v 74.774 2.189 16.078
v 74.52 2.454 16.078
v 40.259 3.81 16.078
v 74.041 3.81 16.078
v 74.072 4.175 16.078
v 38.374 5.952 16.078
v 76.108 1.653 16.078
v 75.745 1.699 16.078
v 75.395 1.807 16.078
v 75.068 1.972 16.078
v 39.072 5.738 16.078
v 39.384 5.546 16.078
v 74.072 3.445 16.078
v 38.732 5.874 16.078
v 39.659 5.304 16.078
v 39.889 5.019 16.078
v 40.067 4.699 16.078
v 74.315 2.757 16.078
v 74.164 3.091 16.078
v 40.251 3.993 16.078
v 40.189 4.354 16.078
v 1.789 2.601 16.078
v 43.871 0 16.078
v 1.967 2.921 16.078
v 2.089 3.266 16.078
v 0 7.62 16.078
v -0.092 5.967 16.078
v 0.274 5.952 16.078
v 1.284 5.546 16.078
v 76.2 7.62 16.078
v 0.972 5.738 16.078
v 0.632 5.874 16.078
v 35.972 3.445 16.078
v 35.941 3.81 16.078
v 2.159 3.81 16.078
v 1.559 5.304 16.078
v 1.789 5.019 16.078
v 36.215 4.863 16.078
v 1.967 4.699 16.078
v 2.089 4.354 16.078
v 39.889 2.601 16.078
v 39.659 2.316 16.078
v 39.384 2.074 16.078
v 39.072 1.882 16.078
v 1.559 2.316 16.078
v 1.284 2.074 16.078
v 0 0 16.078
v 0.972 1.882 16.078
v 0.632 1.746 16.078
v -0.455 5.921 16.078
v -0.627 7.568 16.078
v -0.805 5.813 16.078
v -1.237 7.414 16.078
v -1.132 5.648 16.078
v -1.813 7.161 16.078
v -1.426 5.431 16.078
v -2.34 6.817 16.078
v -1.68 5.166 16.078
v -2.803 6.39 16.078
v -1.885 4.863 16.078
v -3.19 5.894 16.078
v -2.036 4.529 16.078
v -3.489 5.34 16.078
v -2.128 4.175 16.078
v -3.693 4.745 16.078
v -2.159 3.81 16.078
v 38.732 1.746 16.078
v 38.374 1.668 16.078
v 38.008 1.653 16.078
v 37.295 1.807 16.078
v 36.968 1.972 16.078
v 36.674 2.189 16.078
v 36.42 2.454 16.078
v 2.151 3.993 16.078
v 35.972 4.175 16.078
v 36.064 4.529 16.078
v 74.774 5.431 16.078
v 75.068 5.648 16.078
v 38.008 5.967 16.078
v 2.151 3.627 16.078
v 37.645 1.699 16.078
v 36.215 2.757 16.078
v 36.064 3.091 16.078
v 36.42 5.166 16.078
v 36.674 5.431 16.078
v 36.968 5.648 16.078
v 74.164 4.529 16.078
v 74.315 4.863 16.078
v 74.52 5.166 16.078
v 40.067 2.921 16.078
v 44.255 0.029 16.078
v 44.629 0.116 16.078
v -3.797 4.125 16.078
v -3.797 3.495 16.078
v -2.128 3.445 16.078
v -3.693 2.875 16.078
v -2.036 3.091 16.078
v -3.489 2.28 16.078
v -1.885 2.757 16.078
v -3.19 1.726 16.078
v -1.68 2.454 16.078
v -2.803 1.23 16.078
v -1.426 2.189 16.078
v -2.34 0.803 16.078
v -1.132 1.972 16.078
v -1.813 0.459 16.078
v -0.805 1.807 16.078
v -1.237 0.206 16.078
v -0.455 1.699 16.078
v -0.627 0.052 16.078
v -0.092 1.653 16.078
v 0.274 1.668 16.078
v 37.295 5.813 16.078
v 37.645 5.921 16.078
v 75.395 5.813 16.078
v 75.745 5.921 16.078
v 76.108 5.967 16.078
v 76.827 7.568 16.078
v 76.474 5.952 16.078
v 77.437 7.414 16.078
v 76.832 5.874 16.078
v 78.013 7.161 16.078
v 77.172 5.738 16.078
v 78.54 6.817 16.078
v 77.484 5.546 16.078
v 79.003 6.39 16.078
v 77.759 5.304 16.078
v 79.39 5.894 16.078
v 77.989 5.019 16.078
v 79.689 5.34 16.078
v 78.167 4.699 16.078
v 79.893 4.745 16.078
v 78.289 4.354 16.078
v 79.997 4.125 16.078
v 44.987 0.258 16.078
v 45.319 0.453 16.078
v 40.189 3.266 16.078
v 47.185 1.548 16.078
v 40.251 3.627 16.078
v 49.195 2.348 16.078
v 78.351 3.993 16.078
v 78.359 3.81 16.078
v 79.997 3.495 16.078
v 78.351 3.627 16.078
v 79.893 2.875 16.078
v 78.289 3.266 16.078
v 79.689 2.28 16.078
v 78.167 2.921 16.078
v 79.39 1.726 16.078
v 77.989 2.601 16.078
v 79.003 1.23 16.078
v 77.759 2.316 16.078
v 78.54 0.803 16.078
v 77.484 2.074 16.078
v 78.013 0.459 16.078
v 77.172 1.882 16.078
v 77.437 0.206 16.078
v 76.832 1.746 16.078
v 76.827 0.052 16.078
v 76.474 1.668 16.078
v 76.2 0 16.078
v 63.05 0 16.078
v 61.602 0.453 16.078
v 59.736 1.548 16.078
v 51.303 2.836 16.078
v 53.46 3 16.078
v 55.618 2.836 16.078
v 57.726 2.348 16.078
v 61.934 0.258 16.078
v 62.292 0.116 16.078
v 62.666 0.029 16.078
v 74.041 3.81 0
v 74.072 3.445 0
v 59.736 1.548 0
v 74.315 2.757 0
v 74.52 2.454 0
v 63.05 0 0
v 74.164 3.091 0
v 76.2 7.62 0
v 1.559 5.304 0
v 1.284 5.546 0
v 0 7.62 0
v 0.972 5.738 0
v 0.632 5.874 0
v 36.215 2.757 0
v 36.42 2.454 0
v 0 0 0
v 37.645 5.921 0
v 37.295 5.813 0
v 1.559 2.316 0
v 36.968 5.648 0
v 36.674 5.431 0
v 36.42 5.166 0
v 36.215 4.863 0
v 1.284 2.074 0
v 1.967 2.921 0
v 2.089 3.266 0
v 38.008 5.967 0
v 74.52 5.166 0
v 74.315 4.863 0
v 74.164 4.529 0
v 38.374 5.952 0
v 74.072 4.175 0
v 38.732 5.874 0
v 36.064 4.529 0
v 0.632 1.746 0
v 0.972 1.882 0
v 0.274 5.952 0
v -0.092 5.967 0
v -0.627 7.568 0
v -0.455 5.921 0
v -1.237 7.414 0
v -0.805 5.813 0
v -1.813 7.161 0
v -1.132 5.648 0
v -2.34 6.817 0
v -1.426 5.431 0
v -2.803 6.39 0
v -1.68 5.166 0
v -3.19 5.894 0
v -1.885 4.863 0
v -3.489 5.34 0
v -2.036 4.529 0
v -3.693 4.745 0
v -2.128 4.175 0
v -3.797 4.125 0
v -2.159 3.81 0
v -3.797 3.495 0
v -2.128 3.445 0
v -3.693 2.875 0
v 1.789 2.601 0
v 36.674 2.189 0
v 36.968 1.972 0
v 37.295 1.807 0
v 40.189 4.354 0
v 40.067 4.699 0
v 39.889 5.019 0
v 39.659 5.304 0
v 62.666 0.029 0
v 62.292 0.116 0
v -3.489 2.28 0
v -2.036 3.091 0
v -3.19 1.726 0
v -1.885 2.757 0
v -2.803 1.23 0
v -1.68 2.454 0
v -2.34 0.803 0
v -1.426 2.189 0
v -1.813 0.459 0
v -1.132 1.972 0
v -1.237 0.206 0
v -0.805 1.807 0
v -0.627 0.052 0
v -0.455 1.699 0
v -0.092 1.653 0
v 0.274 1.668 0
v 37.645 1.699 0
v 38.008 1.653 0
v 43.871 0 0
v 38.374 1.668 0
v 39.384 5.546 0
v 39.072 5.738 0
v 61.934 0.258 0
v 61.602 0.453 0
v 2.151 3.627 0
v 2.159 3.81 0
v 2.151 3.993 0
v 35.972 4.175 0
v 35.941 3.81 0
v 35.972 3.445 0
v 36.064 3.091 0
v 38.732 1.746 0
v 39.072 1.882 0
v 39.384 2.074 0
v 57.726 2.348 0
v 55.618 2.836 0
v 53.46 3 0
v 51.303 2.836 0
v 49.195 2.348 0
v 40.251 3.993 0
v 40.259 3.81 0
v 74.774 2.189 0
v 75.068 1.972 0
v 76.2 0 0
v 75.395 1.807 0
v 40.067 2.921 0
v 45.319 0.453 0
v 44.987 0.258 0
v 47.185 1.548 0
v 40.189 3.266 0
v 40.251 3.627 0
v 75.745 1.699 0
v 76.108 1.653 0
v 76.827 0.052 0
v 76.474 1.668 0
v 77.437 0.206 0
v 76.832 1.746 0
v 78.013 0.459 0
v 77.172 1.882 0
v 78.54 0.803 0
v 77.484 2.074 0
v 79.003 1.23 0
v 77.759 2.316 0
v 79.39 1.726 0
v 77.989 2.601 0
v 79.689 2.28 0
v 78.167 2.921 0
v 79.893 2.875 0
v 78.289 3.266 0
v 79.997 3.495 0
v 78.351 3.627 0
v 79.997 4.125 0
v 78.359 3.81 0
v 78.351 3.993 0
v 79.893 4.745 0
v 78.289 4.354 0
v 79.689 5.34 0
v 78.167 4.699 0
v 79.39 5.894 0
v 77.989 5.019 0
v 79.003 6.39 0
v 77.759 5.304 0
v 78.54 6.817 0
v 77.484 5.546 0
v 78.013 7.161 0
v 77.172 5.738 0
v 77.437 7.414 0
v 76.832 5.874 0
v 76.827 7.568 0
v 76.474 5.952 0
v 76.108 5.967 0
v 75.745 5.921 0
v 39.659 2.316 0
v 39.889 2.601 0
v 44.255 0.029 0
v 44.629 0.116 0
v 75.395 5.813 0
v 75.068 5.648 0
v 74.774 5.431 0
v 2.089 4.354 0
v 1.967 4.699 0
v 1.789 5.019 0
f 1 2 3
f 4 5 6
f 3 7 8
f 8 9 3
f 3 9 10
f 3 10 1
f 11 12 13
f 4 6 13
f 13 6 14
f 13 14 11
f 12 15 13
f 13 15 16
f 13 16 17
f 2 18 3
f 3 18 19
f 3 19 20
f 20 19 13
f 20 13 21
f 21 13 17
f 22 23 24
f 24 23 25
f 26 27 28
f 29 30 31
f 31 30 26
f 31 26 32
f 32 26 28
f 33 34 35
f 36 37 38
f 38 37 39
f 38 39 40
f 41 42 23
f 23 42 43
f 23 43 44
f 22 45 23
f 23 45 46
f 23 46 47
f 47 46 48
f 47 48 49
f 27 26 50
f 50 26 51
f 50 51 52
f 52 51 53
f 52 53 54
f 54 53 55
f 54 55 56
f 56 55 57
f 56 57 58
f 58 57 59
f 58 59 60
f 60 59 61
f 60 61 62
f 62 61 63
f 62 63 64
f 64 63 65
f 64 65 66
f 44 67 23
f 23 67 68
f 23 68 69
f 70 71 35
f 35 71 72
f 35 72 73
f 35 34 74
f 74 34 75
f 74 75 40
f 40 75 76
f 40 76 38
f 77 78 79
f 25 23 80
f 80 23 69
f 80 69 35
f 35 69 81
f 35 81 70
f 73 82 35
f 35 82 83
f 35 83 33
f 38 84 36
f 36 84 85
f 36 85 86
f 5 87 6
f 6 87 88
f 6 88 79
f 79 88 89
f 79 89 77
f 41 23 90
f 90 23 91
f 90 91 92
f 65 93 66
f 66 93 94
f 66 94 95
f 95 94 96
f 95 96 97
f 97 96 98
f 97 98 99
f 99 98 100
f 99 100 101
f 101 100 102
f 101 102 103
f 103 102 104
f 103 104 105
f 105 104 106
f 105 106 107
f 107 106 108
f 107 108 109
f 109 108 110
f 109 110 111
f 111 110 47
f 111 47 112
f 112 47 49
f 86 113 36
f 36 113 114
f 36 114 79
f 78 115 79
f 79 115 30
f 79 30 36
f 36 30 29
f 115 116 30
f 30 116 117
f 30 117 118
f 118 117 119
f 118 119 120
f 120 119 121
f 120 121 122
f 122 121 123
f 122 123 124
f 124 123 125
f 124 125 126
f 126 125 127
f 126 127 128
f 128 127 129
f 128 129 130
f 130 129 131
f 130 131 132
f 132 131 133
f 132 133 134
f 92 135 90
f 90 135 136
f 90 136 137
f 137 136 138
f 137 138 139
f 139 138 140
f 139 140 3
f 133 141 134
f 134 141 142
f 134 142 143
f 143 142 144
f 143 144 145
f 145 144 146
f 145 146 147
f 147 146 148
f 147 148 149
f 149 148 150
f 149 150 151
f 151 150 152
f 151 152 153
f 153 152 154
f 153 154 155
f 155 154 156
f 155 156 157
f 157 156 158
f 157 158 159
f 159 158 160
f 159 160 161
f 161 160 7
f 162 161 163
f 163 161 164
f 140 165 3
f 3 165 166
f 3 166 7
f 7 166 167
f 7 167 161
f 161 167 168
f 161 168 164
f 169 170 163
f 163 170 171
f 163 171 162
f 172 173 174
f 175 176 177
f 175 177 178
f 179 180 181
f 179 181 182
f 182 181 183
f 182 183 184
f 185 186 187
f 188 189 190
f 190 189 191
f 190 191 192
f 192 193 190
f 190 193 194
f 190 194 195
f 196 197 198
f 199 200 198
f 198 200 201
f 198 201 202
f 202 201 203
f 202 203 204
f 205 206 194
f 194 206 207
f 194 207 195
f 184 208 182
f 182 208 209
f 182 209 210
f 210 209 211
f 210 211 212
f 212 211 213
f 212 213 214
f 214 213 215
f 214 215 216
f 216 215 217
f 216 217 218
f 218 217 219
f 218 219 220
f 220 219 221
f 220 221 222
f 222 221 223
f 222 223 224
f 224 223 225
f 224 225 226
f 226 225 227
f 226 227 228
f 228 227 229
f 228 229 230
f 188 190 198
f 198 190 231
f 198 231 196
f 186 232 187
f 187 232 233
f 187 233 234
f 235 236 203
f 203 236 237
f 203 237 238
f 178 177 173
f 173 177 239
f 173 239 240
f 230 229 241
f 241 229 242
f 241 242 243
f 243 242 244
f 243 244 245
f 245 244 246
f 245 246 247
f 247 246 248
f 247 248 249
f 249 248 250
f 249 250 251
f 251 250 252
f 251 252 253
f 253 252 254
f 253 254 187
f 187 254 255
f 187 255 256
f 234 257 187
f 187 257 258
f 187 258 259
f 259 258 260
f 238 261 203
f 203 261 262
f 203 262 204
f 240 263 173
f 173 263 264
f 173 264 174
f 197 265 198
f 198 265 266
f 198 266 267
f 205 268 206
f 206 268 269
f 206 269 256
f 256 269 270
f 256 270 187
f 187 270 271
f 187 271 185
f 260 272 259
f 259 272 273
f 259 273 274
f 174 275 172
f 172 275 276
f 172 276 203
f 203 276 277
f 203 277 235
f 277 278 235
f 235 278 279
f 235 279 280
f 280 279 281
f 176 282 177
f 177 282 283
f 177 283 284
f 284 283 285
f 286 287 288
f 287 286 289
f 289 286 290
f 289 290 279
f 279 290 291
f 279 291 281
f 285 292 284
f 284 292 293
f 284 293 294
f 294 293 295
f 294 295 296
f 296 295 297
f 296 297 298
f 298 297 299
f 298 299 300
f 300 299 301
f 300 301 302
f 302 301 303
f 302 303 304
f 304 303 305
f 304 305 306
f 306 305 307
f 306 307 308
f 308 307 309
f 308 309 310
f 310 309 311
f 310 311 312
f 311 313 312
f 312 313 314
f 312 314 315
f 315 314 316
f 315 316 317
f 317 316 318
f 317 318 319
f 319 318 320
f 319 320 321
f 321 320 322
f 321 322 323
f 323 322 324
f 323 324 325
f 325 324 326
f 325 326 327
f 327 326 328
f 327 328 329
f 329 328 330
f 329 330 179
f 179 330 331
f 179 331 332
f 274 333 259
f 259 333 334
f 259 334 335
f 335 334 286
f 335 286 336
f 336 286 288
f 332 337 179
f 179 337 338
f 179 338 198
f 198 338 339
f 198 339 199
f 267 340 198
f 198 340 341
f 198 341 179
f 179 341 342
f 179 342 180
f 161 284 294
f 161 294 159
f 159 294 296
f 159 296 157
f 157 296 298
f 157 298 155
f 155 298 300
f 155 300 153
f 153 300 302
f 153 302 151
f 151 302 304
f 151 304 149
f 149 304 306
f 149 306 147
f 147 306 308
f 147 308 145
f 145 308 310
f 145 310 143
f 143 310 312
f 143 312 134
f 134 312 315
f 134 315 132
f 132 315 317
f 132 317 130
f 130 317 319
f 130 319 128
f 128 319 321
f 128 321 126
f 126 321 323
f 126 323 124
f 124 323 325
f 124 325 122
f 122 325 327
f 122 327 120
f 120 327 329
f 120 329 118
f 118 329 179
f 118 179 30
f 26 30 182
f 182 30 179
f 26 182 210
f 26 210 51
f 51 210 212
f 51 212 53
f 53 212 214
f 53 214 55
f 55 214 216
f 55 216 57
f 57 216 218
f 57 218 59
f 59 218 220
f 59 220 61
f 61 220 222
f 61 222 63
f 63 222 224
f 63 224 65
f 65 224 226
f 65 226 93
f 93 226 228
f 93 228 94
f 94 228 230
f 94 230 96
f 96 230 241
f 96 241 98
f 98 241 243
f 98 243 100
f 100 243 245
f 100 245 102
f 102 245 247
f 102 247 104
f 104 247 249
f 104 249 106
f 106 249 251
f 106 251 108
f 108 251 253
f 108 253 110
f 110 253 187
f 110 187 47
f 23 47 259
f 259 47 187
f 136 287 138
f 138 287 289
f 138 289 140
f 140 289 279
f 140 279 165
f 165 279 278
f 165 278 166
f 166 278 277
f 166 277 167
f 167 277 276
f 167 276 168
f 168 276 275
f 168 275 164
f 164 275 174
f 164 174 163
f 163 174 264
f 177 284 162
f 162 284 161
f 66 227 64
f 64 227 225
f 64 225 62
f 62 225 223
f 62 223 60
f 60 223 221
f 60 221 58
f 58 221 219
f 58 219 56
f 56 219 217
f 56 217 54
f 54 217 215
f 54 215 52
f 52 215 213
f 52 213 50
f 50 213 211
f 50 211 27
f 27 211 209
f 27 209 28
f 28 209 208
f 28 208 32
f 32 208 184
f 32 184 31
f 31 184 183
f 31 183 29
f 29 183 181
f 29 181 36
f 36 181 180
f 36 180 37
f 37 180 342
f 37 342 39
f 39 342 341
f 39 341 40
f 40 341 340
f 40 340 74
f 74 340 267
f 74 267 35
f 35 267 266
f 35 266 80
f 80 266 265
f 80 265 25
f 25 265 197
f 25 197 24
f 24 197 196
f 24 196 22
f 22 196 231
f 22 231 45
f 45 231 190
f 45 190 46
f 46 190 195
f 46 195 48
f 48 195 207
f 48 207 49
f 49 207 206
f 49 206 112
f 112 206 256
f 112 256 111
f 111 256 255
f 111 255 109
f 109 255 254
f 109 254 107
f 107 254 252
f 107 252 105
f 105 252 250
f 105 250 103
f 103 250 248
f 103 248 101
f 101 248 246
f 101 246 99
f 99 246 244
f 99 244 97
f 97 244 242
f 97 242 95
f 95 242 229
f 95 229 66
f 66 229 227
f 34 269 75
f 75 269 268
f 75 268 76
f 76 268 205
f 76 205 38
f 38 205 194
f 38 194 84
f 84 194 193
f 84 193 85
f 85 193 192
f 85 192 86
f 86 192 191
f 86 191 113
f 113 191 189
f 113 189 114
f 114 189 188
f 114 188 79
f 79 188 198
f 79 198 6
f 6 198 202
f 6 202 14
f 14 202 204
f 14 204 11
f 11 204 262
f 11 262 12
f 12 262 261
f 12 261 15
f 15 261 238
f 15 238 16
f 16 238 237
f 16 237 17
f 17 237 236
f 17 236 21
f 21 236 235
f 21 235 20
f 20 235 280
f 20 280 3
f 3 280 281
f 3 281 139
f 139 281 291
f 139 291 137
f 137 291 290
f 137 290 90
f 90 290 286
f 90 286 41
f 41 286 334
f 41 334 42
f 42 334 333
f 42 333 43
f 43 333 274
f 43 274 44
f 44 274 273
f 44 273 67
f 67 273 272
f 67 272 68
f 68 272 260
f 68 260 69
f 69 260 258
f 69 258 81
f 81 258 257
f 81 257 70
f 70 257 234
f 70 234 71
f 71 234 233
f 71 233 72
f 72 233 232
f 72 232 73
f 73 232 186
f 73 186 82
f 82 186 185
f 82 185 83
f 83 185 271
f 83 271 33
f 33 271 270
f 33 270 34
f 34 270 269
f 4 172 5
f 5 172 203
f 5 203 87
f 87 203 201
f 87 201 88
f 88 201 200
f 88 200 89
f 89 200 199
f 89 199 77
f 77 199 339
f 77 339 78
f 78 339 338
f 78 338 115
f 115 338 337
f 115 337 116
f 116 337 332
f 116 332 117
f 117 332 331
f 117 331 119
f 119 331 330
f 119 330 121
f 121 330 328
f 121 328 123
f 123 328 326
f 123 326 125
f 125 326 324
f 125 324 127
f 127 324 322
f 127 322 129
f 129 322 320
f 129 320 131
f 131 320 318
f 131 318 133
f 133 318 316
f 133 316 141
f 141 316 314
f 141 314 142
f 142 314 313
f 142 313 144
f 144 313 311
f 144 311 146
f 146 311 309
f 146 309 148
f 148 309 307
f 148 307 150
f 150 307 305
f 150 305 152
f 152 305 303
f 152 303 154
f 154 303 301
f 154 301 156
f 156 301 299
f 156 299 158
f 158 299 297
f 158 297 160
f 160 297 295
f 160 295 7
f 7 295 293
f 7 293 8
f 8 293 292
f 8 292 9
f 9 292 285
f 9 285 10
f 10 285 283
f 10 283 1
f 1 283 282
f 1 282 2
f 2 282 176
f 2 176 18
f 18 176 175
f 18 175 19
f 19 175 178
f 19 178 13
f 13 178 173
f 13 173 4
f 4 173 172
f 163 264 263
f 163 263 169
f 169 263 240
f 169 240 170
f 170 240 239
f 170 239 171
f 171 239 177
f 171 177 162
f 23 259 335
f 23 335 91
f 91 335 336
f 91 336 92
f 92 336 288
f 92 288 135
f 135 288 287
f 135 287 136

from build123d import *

# Parameters (mm, degrees)
SKETCH1_R           = 2.159
BOSS_EXTRUDE1_DEPTH = 16.0782
FILLET1_R           = 2.54


with BuildPart() as part:
    # Sketch1 → Boss-Extrude1 (new body)
    with BuildSketch(Plane.XY):
        with BuildLine():
            Line((0, 7.62), (76.2, 7.62))
            ThreePointArc((76.2, 7.62), (80.01, 3.81), (76.2, 0))
            Line((76.2, 0), (62.219445877, 0))
            ThreePointArc((62.219445877, 0), (53.46050014, 2.99974), (44.701554403, 0))
            Line((44.701554403, 0), (0, 0))
            ThreePointArc((0, 0), (-3.81, 3.81), (0, 7.62))
        make_face()
        with Locations((0, 3.81)):
            Circle(SKETCH1_R, mode=Mode.SUBTRACT)
        with Locations((38.1, 3.81)):
            Circle(SKETCH1_R, mode=Mode.SUBTRACT)
        with Locations((76.2, 3.81)):
            Circle(SKETCH1_R, mode=Mode.SUBTRACT)
    extrude(amount=BOSS_EXTRUDE1_DEPTH)

    # Fillet1
    fillet1_edges = [part.edges().sort_by_distance(p)[0] for p in [
        (62.219445877, 0, 8.0391),
        (44.701554403, 0, 8.0391),
    ]]
    fillet(fillet1_edges, radius=FILLET1_R)


solid = part.part
